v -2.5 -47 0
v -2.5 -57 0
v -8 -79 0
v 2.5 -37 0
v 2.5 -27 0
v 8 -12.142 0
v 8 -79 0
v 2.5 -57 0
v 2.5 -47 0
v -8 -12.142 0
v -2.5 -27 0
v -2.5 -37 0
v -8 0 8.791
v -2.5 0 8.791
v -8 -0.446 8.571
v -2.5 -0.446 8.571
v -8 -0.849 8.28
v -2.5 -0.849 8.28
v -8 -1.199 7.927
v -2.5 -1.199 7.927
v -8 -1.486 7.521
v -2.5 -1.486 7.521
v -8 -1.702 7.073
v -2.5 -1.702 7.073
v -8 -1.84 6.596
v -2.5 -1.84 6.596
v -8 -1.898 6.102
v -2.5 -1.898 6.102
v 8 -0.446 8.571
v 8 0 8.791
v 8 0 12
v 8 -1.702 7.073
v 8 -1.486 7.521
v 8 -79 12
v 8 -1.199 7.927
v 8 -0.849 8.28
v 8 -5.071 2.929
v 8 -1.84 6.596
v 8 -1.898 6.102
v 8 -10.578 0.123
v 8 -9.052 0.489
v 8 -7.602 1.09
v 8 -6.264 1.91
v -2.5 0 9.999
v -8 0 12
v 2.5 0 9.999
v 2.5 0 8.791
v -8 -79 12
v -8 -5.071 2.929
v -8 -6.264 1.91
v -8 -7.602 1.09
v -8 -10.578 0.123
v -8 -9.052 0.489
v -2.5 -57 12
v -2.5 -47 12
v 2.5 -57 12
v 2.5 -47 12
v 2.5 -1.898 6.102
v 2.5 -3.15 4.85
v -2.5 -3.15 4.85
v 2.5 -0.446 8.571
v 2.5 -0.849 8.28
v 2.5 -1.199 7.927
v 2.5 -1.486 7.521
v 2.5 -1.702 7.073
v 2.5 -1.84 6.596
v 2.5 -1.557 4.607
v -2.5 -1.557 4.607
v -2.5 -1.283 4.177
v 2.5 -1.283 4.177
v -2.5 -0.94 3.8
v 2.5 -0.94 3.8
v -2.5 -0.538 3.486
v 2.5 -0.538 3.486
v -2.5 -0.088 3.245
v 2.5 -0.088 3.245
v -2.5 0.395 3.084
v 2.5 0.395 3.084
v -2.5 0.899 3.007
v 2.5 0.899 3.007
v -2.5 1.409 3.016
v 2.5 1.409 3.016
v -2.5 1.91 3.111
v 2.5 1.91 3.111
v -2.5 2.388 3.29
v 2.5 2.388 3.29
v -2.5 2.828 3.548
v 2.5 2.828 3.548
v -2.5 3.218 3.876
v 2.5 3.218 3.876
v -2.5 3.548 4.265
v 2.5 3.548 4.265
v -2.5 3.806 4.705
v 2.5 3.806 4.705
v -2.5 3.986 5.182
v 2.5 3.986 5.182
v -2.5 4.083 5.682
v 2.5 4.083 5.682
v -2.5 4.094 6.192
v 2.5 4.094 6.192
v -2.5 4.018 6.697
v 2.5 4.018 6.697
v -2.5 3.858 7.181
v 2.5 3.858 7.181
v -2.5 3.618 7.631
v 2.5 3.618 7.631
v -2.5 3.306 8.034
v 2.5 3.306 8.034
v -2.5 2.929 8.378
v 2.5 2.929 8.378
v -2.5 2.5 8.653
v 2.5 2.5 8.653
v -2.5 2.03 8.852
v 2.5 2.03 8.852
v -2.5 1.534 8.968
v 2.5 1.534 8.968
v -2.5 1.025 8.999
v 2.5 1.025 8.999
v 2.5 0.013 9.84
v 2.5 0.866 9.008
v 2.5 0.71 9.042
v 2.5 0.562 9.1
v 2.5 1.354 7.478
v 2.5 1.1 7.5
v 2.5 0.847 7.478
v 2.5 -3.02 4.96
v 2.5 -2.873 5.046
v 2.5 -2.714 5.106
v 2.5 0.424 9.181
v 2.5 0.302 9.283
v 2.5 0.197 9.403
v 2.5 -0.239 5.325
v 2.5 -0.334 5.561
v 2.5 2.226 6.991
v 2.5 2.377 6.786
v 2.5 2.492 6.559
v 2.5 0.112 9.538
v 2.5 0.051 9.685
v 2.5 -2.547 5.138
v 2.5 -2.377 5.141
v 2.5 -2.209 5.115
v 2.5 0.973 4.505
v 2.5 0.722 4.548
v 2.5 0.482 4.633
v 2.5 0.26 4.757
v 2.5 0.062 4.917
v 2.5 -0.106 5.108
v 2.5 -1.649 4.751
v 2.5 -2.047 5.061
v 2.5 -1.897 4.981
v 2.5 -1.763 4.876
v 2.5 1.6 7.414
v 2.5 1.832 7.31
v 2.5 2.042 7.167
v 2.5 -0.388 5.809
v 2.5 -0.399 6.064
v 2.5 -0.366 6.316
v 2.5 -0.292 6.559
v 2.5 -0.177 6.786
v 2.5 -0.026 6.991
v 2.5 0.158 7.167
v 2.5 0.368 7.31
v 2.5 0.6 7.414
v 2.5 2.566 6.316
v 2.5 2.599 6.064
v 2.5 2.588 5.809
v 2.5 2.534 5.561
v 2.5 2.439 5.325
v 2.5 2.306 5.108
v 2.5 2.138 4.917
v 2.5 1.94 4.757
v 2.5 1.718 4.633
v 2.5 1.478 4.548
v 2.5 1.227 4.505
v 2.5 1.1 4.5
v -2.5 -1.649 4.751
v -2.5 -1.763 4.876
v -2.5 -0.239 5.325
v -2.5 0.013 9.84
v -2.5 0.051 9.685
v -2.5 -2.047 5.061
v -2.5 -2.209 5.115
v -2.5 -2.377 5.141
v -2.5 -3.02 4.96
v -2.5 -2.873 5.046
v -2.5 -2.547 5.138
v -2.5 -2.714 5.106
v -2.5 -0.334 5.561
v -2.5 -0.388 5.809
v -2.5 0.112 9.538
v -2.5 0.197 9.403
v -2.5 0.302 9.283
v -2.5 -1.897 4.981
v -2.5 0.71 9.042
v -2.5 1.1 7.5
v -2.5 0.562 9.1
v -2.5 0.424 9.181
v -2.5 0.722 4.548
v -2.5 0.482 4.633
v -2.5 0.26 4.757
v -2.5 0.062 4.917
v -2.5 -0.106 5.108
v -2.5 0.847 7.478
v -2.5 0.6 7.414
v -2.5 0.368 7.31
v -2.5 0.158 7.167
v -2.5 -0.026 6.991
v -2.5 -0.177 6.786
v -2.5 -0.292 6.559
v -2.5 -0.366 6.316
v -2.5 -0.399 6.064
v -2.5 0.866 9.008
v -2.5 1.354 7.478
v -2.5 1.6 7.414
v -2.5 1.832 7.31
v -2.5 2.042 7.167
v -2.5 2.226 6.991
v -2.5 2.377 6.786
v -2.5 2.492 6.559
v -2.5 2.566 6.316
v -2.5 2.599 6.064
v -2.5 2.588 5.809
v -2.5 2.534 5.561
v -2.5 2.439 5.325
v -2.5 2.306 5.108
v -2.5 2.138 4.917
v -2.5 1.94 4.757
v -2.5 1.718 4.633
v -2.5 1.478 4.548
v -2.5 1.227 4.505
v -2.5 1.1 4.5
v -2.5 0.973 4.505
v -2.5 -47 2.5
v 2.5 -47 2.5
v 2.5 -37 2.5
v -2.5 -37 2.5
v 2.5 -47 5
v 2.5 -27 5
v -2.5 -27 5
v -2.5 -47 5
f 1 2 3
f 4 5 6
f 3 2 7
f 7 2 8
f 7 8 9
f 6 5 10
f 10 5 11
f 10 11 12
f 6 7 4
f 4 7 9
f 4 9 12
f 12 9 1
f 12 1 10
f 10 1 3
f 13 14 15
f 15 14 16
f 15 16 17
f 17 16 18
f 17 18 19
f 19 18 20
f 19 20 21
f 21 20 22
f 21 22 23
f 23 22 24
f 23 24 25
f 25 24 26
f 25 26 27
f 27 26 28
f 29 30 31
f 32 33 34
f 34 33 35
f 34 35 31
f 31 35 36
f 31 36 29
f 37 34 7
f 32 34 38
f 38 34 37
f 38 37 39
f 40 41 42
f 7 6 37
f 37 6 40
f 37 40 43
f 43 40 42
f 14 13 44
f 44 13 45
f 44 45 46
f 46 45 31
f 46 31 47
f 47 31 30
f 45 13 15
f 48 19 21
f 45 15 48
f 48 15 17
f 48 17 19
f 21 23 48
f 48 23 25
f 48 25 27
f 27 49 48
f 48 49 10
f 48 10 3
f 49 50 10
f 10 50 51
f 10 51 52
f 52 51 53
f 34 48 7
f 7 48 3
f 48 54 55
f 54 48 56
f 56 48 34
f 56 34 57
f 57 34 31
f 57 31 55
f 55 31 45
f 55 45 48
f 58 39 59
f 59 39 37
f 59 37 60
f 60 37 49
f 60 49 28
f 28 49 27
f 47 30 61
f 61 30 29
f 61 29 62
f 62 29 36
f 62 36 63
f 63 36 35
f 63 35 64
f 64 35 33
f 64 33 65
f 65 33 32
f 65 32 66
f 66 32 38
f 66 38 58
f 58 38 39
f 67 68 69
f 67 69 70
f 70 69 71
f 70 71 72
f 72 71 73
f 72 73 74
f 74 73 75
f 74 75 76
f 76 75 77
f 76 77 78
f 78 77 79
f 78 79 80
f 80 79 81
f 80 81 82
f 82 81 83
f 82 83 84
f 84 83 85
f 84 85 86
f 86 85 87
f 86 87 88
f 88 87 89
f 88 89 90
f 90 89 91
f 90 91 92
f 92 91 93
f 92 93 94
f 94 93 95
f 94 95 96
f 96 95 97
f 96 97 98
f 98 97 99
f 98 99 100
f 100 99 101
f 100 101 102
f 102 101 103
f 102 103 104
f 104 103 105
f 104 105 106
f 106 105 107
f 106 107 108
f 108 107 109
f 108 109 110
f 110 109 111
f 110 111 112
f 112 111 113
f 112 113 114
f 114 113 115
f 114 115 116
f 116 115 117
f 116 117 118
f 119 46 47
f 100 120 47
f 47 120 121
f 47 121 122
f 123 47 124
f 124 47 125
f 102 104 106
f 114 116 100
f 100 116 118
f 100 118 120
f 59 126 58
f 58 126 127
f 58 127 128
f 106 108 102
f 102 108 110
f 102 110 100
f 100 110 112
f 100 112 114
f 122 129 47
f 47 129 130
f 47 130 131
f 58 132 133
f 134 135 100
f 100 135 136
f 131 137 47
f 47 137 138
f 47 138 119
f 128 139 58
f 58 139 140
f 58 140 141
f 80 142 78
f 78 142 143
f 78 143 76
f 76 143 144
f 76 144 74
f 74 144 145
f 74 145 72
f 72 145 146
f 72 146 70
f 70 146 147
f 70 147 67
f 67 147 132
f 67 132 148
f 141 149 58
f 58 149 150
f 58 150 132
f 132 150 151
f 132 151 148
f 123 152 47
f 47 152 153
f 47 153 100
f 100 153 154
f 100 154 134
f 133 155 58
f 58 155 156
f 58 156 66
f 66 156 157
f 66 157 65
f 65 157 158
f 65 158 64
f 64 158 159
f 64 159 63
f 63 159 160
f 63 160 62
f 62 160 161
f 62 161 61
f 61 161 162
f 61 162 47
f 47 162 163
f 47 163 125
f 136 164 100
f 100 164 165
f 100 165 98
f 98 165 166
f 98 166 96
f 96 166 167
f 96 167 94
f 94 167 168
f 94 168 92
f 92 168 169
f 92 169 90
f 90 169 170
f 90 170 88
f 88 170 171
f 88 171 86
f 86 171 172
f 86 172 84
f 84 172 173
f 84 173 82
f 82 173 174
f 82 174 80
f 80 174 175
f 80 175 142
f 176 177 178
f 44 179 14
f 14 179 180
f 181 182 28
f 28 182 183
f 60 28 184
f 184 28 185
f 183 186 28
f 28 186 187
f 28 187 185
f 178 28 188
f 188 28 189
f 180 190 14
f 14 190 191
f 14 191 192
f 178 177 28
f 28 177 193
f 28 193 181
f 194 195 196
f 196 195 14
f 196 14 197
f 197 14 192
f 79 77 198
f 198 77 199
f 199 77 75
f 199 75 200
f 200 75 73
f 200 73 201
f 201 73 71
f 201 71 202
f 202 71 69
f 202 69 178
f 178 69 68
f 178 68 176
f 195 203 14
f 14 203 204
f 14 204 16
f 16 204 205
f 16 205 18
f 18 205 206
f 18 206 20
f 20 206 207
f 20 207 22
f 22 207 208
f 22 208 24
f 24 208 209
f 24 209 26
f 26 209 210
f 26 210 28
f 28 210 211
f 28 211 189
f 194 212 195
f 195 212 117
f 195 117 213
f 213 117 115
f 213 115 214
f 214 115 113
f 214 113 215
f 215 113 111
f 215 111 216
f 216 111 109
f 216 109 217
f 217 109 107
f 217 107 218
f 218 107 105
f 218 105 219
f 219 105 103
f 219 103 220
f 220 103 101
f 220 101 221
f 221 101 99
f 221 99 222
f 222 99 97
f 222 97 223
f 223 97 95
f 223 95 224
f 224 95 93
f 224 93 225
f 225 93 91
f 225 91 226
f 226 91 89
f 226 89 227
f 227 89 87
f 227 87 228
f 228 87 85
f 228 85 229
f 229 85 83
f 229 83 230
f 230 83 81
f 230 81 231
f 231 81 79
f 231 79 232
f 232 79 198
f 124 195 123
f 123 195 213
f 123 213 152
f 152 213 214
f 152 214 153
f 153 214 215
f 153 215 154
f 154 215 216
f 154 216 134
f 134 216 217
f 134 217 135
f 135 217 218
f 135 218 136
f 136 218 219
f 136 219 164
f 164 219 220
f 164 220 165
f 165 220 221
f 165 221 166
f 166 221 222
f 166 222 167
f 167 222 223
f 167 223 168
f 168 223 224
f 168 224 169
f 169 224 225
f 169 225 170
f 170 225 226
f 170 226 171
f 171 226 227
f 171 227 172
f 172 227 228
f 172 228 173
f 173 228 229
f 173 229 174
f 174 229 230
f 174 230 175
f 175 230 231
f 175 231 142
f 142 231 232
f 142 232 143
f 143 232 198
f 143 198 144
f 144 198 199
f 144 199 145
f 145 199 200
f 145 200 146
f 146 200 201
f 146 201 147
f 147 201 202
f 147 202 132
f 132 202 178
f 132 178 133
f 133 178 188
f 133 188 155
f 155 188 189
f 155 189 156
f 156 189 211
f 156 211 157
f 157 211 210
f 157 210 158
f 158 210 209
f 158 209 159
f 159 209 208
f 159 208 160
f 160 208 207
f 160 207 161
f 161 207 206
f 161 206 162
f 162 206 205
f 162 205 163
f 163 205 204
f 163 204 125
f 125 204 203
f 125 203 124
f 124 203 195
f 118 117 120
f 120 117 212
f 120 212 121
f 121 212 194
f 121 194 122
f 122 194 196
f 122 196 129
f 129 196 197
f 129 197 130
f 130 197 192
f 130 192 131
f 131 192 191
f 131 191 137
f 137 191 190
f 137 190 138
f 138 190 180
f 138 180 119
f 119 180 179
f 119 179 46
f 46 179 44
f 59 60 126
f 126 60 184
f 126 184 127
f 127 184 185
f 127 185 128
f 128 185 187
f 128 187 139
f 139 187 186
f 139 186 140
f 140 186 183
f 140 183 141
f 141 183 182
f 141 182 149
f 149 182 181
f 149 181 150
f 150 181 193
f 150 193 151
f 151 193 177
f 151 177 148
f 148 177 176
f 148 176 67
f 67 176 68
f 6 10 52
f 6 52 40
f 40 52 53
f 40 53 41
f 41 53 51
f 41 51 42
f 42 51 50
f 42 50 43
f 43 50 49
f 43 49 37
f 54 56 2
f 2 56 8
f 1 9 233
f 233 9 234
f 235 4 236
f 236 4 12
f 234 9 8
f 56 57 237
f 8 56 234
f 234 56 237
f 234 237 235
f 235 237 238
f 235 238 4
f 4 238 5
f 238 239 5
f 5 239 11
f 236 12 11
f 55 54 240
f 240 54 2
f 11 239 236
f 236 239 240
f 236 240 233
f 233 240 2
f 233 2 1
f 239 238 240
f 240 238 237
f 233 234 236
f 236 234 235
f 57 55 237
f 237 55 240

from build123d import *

# Parameters (mm, degrees)
SKETCH1_W               = 16
SKETCH1_H               = 79
BOSS_EXTRUDE1_DEPTH     = 12
CUT_EXTRUDE1_DEPTH      = 81.305666052
CUT_EXTRUDE1_DEPTH_BACK = 81.305666052
CUT_EXTRUDE2_DEPTH      = 81.305666052
CUT_EXTRUDE2_DEPTH_BACK = 81.305666052
SKETCH4_R               = 3
SKETCH4_R_2             = 1.5
BOSS_EXTRUDE2_DEPTH     = 2.5
FILLET1_R               = 1
FILLET2_R               = 10
SKETCH5_W               = 5
SKETCH5_H               = 10
CUT_EXTRUDE3_DEPTH      = 5
CUT_EXTRUDE4_REACH      = 55.096
SKETCH6_W               = 5
SKETCH6_H               = 2.5
SKETCH7_W               = 5
SKETCH7_H               = 10
CUT_EXTRUDE5_DEPTH      = 81.305666052


with BuildPart() as part:
    # Sketch1 → Boss-Extrude1 (new body)
    with BuildSketch(Plane.XY):
        with Locations((0, -39.5)):
            Rectangle(SKETCH1_W, SKETCH1_H)
    extrude(amount=BOSS_EXTRUDE1_DEPTH)

    # Sketch2 → Cut-Extrude1 (cut, two sides: drawn at the far end of the back side and taken through both)
    with BuildSketch(Plane(origin=(0, 0, 0), x_dir=(0, 0, -1), z_dir=(1, 0, 0)).offset(-CUT_EXTRUDE1_DEPTH_BACK)):
        Polygon((-8, 0), (0, 0), (0, -8), align=None)
    extrude(amount=CUT_EXTRUDE1_DEPTH + CUT_EXTRUDE1_DEPTH_BACK, mode=Mode.SUBTRACT)

    # Sketch3 → Cut-Extrude2 (cut, two sides: drawn at the far end of the back side and taken through both)
    with BuildSketch(Plane(origin=(0, 0, 0), x_dir=(0, 0, -1), z_dir=(1, 0, 0)).offset(-CUT_EXTRUDE2_DEPTH_BACK)):
        with BuildLine():
            ThreePointArc((-3, 1.1), (-6.559834153, 4.04730143), (-8.791057147, 0))
            Line((-8.791057147, 0), (-7.019803903, 0))
            ThreePointArc((-7.019803903, 0), (-6.600122548, 2.474719218), (-4.5, 1.1))
            ThreePointArc((-4.5, 1.1), (-4.625280782, 0.499877452), (-4.980196097, 0))
            Line((-4.980196097, 0), (-3.208942853, 0))
            ThreePointArc((-3.208942853, 0), (-3.05269857, 0.540165847), (-3, 1.1))
        make_face()
        with BuildLine():
            Line((-7.019803903, 0), (-8.791057147, 0))
            ThreePointArc((-8.791057147, 0), (-6, -1.9), (-3.208942853, 0))
            Line((-3.208942853, 0), (-4.980196097, 0))
            ThreePointArc((-4.980196097, 0), (-6, -0.4), (-7.019803903, 0))
        make_face()
    extrude(amount=CUT_EXTRUDE2_DEPTH + CUT_EXTRUDE2_DEPTH_BACK, mode=Mode.SUBTRACT)

    # Sketch4 → Boss-Extrude2 (add, symmetric)
    with BuildSketch(Plane(origin=(0, 0, 0), x_dir=(0, 0, -1), z_dir=(1, 0, 0))):
        with Locations((-6, 1.1)):
            Circle(SKETCH4_R)
        with Locations((-6, 1.1)):
            Circle(SKETCH4_R_2, mode=Mode.SUBTRACT)
    extrude(amount=BOSS_EXTRUDE2_DEPTH, both=True)

    # Fillet1
    fillet1_edges = [part.edges().sort_by_distance(p)[0] for p in [
        (0, -1.898274836, 6.101725164),
        (0, 0, 8.791057147),
    ]]
    fillet(fillet1_edges, radius=FILLET1_R)

    # Fillet2
    fillet2_edges = [part.edges().sort_by_distance(p)[0] for p in [
        (0, -8, 0),
    ]]
    fillet(fillet2_edges, radius=FILLET2_R)

    # Sketch5 → Cut-Extrude3 (cut)
    with BuildSketch(Plane(origin=(0, 0, 0), x_dir=(-1, 0, 0), z_dir=(0, 0, -1))):
        with Locations((0, -32)):
            Rectangle(SKETCH5_W, SKETCH5_H)
        with Locations((0, -52)):
            Rectangle(SKETCH5_W, SKETCH5_H)
    extrude(amount=-CUT_EXTRUDE3_DEPTH, mode=Mode.SUBTRACT)

    # Sketch6 → Cut-Extrude4 (cut, up to next)
    with BuildSketch(Plane.XZ.offset(47), mode=Mode.PRIVATE) as cut_extrude4_sk1:
        with Locations((0, 3.75)):
            Rectangle(SKETCH6_W, SKETCH6_H)
    cut_extrude4_tool1 = extrude(cut_extrude4_sk1.sketch, amount=-CUT_EXTRUDE4_REACH, mode=Mode.PRIVATE) & part.part
    add(cut_extrude4_tool1.solids().sort_by_distance((0, -47, 3.75))[0], mode=Mode.SUBTRACT)

    # Sketch7 → Cut-Extrude5 (cut, through all)
    with BuildSketch(Plane(origin=(0, 0, 0), x_dir=(-1, 0, 0), z_dir=(0, 0, -1))):
        with Locations((0, -52)):
            Rectangle(SKETCH7_W, SKETCH7_H)
    extrude(amount=-CUT_EXTRUDE5_DEPTH, mode=Mode.SUBTRACT)


solid = part.part
